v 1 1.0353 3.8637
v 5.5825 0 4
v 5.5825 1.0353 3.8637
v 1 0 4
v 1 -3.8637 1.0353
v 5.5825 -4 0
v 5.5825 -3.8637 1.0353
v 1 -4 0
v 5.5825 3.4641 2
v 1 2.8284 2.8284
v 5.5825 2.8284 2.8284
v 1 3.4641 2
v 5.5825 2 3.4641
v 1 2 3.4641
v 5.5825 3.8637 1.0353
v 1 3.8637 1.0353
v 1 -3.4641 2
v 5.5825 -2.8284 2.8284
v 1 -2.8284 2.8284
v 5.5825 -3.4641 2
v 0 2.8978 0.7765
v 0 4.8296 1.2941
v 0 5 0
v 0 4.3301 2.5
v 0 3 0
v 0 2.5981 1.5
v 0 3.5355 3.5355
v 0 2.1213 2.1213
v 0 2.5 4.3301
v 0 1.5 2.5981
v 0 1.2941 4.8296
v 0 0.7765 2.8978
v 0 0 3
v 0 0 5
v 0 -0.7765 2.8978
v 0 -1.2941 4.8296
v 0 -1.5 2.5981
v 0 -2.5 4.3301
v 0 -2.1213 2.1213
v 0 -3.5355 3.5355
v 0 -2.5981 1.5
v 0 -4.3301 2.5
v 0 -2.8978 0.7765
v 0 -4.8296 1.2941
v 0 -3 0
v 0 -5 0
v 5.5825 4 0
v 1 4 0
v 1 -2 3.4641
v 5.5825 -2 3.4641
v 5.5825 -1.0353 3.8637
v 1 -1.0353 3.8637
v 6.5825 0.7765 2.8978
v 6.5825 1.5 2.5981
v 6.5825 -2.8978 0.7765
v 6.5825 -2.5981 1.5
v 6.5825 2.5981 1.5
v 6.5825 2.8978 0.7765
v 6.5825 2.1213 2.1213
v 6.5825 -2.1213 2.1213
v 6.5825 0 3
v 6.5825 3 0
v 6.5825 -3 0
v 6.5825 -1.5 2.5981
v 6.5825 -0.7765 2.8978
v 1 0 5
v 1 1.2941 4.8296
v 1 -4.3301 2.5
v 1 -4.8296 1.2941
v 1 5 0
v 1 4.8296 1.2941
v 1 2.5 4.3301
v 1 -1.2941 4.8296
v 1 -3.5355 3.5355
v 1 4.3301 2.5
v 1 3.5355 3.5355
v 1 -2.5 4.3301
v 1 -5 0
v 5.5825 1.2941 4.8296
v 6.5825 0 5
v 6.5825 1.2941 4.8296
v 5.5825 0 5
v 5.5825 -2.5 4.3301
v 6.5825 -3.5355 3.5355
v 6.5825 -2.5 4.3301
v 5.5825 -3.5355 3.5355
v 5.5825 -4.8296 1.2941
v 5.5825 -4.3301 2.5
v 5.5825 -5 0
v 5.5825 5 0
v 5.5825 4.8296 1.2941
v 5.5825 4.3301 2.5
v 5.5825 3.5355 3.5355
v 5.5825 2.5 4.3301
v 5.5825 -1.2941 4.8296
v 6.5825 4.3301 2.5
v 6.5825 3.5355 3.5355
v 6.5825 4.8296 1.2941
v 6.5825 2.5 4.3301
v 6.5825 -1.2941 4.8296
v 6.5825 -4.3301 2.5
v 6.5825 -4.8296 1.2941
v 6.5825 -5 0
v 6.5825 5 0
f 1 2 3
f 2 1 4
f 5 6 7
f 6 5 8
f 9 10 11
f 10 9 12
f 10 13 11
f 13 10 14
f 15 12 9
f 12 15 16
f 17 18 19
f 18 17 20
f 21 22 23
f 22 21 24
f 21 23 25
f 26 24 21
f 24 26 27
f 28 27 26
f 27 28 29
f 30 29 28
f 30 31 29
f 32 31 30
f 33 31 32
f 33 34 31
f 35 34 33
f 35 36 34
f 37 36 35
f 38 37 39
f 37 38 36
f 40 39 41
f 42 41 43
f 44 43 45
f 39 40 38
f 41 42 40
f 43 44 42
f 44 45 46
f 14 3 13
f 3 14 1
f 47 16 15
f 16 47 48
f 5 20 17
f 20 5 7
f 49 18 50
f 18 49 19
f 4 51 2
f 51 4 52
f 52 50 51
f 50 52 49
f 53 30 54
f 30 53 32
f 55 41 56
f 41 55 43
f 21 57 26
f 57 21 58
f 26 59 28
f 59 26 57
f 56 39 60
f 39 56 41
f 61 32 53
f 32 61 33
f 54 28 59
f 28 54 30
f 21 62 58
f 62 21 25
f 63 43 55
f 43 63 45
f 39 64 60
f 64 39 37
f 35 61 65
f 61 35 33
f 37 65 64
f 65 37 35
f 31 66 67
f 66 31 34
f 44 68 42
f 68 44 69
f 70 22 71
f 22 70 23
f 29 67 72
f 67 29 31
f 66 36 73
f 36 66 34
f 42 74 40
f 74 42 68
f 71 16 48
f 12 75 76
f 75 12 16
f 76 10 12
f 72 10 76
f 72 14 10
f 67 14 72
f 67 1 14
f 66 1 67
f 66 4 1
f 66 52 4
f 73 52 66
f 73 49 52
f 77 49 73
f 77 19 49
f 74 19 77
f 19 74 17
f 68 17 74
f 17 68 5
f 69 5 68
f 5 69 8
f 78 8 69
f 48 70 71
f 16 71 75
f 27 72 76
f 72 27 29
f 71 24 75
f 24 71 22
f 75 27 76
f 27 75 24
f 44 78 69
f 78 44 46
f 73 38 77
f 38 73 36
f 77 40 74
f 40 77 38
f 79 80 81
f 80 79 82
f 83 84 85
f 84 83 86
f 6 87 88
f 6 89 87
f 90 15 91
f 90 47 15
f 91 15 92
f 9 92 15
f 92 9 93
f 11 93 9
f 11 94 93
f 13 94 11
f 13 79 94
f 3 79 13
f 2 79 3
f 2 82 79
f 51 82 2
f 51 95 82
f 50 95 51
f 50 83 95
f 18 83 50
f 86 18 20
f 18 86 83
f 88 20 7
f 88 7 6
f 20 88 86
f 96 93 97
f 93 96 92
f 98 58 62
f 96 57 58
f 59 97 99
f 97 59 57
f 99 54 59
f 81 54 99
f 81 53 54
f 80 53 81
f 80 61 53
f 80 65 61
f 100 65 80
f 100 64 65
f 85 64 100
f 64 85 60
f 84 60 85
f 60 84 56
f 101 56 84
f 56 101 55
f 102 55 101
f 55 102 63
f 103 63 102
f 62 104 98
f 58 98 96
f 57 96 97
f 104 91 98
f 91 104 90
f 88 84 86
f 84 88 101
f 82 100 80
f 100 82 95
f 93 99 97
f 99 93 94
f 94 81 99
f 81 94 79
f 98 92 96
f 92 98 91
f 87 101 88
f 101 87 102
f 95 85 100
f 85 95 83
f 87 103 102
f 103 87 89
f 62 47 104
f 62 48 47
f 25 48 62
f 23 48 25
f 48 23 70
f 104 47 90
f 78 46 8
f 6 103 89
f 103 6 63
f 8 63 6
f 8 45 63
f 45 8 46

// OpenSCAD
// file: ../build_environments.scad
// build_environments.scad: modules to build level sections
//

module pool(diameter=10.0, wall_height=2.0, step_width=3.0, connections=[])
{
    difference() {
        union() {
        difference() {
            cylinder(h=0.5,r1=diameter+step_width,r2=diameter+step_width,$fn=48);
            translate([0,0,-0.1])
                cylinder(h=0.7,r1=diameter,r2=diameter,$fn=48);
        }
        difference() {
            cylinder(h=wall_height,r1=diameter+step_width+1.0,r2=diameter+step_width+1.0,$fn=48);
            translate([0,0,-0.1])
                cylinder(h=wall_height+0.2,r1=diameter+step_width,r2=diameter+step_width,$fn=48);
        }
        }
    
        for (c = connections)
        {
            rotate([0,90,0]) {
                angle = atan2(c[1],c[0]);
                rotate([-angle,0,0]) {
                    cylinder(h=diameter+5.0,r1=c[2],r2=c[2],$fn=48);
                }
            }
        }
    }
}

module straight(length=10.0, width=2.0, dy1=0.0, dy2=0.0, dz=0.0)
{
    dims = [0, 0, 0, 0, 0, (dz/length)];
    matrix = [
        [ 1, dims[0], dims[1], 0 ],
        [ dims[2], 1, dims[4], 0 ],
        [ dims[5], dims[3], 1, 0 ],
        [ 0, 0, 0, 1 ]
    ];
    multmatrix(matrix)
    difference() {
        translate([dy1,0,0])
        union() {
            rotate([0,90,0]) {
                difference() {
                    cylinder(h=(length-dy1-dy2),r1=width+1.0,r2=width+1.0,$fn=24);
                    translate([0,0,-0.1])
                        cylinder(h=(length-dy1-dy2+0.2),r1=width,r2=width,$fn=24);
                }
                difference() {
                    cylinder(h=1.0,r1=width+2.0,r2=width+2.0,$fn=24);
                    translate([0,0,-0.1])
                        cylinder(h=1.2,r1=width,r2=width,$fn=24);
                }
                translate([0,0,(length-dy1-dy2)-1.0]) {
                    difference() {
                        cylinder(h=1.0,r1=width+2.0,r2=width+2.0,$fn=24);
                        translate([0,0,-0.1])
                            cylinder(h=1.2,r1=width,r2=width,$fn=24);
                    }
                }
            }
        }
        translate([0,0,-(2*width+4.0)/2])
            cube([3*length,3*length,2*width+4.0],center=true);
    }
}

module curve(p0=[0,0], center=[0,0], dir=1, angle=0.0, width=2.0)
{
    radius = sqrt((p0[0]-center[0])*(p0[0]-center[0]) + (p0[1]-center[1])*(p0[1]-center[1]));
    if (dir == 0) {
        difference() {
            rotate([0,0,-90])
            difference() {
                rotate_extrude(angle = angle, convexity = 10, $fn=32)
                    translate([radius, 0, 0])
                        circle(r = width+1.0,$fn=24);
                rotate([0,0,-1.0])
                    rotate_extrude(angle = angle+2.0, convexity = 10, $fn=32)
                        translate([radius, 0, 0])
                            circle(r = width,$fn=24);
            }
            translate([0,0,-(2*width+4.0)/2])
                cube([5*radius,5*radius,2*width+4.0],center=true);
        }
    }
    else {
        difference() {
            rotate([0,0,90])
            difference() {
                rotate_extrude(angle = -angle, convexity = 10, $fn=32)
                    translate([radius, 0, 0])
                        circle(r = width+1.0,$fn=24);
                rotate([0,0,1.0])
                    rotate_extrude(angle = -angle-2.0, convexity = 10, $fn=32)
                        translate([radius, 0, 0])
                            circle(r = width,$fn=24);
            }
            translate([0,0,-(2*width+4.0)/2])
                cube([5*radius,5*radius,2*width+4.0],center=true);
        }
    }

}

// test pool
//pool(diameter=12.0000, wall_height=3.0000, step_width=3.0000, connections=[[0.0000,-26.0000,2.0000], [23.6074,0.0000,2.0000]]);

// test straight, slope
//straight(length=26.0000, width=2.0000, dy1=11.8322, dy2=6.7082, dz=0.0000);
//straight(length=29.1549, width=12.0000, dy1=0.0000, dy2=0.0000, dz=-15.0000);

// test curve
//curve(p0=[23.6074, 0.0000], center=[23.6074, 5.0000], dir=0, angle=60.1011, width=2.0000);
//curve(p0=[33.6426, 12.4219], center=[37.9771, 9.9295], dir=1, angle=120.4627, width=2.0000);
// main file
use <../build_environments.scad>;
straight(length=6.5825, width=3.0000, dy1=0.0000, dy2=0.0000, dz=0.0000);
